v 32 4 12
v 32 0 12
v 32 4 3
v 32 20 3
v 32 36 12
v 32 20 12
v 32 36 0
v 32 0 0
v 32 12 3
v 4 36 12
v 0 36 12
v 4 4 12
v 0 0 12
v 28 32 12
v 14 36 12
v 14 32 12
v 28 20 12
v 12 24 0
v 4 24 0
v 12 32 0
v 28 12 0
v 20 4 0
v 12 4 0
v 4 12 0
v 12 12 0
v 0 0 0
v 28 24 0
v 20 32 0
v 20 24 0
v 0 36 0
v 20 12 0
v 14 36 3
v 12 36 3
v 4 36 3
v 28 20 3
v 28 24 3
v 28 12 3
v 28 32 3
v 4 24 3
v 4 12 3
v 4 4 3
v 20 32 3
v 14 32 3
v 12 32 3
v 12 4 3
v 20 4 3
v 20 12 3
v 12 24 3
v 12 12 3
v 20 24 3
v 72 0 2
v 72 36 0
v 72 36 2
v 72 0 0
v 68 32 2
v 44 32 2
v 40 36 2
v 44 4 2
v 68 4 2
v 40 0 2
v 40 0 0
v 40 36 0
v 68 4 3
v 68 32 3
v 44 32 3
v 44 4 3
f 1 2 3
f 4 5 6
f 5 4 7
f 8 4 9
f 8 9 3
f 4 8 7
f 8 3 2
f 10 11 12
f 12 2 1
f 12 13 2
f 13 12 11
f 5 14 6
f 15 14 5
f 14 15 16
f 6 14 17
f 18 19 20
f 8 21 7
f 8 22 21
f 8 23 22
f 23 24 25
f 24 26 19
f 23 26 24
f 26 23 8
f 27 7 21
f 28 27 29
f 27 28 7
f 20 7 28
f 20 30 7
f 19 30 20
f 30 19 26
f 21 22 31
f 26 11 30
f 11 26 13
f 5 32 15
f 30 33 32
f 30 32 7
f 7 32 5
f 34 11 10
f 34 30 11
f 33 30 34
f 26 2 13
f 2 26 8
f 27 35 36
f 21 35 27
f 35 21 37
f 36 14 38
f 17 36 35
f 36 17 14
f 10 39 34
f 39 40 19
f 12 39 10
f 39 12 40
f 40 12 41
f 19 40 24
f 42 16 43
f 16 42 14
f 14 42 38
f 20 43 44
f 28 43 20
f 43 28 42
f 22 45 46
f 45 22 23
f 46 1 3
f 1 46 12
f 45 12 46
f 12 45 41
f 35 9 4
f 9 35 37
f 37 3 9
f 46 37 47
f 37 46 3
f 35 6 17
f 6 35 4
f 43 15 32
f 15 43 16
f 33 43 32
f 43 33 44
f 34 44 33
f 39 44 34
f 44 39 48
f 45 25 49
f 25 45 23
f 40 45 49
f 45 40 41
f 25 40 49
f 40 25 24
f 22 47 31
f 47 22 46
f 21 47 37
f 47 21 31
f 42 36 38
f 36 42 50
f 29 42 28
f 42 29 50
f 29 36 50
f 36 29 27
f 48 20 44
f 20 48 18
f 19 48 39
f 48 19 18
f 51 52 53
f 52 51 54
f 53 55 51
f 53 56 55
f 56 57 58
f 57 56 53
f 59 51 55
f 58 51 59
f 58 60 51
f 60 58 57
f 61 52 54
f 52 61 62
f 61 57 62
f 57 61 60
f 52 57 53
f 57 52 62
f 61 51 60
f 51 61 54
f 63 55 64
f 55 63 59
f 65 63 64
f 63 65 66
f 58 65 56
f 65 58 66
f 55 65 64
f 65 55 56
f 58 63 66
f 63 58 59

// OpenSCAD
// LemonRX DIY module mount.
// Mark Harrison, marhar@gmail.com
// Released under Creative Commons Sharealike Credit (CC,SA,CR).

XX=24;
YY=28;
Zbottom=3;
Ztop=6;
Zboard=2;
ZZ=Zbottom+Ztop+Zboard+1;
WConnector=16;
Zantenna=3;
Wantenna=10;
ww=4;
Zmount=3;
Xmount=8;

module lid() {
    cube([XX+2*ww,YY+2*ww,2]);
    translate([ww,ww,0]) cube([XX,YY,3]);
}
    
module main() {
    difference() {
        cube([XX+2*ww,YY+2*ww,ZZ]);
        // main hole
        translate([ww,ww,0]) cube([XX,YY,ZZ]);
        // connector cutout
        translate([XX+ww,ww,Zbottom]) cube([ww,WConnector,ZZ-Zbottom]);
        // antenna cutout
        translate([ww,YY+ww,Zantenna]) cube([Wantenna,ww,ZZ-Zantenna]);
    }
    // supports
    translate([0,0,0]) mount();
    translate([XX+ww-Xmount,0,0]) mount();
    translate([XX+ww-Xmount,YY+ww-Xmount]) mount();    
    translate([0,YY+ww-Xmount]) mount();    
}

module mount() {
    cube([ww+Xmount,ww+Xmount,Zmount]);
}


main();
translate([40,0,0]) lid();
